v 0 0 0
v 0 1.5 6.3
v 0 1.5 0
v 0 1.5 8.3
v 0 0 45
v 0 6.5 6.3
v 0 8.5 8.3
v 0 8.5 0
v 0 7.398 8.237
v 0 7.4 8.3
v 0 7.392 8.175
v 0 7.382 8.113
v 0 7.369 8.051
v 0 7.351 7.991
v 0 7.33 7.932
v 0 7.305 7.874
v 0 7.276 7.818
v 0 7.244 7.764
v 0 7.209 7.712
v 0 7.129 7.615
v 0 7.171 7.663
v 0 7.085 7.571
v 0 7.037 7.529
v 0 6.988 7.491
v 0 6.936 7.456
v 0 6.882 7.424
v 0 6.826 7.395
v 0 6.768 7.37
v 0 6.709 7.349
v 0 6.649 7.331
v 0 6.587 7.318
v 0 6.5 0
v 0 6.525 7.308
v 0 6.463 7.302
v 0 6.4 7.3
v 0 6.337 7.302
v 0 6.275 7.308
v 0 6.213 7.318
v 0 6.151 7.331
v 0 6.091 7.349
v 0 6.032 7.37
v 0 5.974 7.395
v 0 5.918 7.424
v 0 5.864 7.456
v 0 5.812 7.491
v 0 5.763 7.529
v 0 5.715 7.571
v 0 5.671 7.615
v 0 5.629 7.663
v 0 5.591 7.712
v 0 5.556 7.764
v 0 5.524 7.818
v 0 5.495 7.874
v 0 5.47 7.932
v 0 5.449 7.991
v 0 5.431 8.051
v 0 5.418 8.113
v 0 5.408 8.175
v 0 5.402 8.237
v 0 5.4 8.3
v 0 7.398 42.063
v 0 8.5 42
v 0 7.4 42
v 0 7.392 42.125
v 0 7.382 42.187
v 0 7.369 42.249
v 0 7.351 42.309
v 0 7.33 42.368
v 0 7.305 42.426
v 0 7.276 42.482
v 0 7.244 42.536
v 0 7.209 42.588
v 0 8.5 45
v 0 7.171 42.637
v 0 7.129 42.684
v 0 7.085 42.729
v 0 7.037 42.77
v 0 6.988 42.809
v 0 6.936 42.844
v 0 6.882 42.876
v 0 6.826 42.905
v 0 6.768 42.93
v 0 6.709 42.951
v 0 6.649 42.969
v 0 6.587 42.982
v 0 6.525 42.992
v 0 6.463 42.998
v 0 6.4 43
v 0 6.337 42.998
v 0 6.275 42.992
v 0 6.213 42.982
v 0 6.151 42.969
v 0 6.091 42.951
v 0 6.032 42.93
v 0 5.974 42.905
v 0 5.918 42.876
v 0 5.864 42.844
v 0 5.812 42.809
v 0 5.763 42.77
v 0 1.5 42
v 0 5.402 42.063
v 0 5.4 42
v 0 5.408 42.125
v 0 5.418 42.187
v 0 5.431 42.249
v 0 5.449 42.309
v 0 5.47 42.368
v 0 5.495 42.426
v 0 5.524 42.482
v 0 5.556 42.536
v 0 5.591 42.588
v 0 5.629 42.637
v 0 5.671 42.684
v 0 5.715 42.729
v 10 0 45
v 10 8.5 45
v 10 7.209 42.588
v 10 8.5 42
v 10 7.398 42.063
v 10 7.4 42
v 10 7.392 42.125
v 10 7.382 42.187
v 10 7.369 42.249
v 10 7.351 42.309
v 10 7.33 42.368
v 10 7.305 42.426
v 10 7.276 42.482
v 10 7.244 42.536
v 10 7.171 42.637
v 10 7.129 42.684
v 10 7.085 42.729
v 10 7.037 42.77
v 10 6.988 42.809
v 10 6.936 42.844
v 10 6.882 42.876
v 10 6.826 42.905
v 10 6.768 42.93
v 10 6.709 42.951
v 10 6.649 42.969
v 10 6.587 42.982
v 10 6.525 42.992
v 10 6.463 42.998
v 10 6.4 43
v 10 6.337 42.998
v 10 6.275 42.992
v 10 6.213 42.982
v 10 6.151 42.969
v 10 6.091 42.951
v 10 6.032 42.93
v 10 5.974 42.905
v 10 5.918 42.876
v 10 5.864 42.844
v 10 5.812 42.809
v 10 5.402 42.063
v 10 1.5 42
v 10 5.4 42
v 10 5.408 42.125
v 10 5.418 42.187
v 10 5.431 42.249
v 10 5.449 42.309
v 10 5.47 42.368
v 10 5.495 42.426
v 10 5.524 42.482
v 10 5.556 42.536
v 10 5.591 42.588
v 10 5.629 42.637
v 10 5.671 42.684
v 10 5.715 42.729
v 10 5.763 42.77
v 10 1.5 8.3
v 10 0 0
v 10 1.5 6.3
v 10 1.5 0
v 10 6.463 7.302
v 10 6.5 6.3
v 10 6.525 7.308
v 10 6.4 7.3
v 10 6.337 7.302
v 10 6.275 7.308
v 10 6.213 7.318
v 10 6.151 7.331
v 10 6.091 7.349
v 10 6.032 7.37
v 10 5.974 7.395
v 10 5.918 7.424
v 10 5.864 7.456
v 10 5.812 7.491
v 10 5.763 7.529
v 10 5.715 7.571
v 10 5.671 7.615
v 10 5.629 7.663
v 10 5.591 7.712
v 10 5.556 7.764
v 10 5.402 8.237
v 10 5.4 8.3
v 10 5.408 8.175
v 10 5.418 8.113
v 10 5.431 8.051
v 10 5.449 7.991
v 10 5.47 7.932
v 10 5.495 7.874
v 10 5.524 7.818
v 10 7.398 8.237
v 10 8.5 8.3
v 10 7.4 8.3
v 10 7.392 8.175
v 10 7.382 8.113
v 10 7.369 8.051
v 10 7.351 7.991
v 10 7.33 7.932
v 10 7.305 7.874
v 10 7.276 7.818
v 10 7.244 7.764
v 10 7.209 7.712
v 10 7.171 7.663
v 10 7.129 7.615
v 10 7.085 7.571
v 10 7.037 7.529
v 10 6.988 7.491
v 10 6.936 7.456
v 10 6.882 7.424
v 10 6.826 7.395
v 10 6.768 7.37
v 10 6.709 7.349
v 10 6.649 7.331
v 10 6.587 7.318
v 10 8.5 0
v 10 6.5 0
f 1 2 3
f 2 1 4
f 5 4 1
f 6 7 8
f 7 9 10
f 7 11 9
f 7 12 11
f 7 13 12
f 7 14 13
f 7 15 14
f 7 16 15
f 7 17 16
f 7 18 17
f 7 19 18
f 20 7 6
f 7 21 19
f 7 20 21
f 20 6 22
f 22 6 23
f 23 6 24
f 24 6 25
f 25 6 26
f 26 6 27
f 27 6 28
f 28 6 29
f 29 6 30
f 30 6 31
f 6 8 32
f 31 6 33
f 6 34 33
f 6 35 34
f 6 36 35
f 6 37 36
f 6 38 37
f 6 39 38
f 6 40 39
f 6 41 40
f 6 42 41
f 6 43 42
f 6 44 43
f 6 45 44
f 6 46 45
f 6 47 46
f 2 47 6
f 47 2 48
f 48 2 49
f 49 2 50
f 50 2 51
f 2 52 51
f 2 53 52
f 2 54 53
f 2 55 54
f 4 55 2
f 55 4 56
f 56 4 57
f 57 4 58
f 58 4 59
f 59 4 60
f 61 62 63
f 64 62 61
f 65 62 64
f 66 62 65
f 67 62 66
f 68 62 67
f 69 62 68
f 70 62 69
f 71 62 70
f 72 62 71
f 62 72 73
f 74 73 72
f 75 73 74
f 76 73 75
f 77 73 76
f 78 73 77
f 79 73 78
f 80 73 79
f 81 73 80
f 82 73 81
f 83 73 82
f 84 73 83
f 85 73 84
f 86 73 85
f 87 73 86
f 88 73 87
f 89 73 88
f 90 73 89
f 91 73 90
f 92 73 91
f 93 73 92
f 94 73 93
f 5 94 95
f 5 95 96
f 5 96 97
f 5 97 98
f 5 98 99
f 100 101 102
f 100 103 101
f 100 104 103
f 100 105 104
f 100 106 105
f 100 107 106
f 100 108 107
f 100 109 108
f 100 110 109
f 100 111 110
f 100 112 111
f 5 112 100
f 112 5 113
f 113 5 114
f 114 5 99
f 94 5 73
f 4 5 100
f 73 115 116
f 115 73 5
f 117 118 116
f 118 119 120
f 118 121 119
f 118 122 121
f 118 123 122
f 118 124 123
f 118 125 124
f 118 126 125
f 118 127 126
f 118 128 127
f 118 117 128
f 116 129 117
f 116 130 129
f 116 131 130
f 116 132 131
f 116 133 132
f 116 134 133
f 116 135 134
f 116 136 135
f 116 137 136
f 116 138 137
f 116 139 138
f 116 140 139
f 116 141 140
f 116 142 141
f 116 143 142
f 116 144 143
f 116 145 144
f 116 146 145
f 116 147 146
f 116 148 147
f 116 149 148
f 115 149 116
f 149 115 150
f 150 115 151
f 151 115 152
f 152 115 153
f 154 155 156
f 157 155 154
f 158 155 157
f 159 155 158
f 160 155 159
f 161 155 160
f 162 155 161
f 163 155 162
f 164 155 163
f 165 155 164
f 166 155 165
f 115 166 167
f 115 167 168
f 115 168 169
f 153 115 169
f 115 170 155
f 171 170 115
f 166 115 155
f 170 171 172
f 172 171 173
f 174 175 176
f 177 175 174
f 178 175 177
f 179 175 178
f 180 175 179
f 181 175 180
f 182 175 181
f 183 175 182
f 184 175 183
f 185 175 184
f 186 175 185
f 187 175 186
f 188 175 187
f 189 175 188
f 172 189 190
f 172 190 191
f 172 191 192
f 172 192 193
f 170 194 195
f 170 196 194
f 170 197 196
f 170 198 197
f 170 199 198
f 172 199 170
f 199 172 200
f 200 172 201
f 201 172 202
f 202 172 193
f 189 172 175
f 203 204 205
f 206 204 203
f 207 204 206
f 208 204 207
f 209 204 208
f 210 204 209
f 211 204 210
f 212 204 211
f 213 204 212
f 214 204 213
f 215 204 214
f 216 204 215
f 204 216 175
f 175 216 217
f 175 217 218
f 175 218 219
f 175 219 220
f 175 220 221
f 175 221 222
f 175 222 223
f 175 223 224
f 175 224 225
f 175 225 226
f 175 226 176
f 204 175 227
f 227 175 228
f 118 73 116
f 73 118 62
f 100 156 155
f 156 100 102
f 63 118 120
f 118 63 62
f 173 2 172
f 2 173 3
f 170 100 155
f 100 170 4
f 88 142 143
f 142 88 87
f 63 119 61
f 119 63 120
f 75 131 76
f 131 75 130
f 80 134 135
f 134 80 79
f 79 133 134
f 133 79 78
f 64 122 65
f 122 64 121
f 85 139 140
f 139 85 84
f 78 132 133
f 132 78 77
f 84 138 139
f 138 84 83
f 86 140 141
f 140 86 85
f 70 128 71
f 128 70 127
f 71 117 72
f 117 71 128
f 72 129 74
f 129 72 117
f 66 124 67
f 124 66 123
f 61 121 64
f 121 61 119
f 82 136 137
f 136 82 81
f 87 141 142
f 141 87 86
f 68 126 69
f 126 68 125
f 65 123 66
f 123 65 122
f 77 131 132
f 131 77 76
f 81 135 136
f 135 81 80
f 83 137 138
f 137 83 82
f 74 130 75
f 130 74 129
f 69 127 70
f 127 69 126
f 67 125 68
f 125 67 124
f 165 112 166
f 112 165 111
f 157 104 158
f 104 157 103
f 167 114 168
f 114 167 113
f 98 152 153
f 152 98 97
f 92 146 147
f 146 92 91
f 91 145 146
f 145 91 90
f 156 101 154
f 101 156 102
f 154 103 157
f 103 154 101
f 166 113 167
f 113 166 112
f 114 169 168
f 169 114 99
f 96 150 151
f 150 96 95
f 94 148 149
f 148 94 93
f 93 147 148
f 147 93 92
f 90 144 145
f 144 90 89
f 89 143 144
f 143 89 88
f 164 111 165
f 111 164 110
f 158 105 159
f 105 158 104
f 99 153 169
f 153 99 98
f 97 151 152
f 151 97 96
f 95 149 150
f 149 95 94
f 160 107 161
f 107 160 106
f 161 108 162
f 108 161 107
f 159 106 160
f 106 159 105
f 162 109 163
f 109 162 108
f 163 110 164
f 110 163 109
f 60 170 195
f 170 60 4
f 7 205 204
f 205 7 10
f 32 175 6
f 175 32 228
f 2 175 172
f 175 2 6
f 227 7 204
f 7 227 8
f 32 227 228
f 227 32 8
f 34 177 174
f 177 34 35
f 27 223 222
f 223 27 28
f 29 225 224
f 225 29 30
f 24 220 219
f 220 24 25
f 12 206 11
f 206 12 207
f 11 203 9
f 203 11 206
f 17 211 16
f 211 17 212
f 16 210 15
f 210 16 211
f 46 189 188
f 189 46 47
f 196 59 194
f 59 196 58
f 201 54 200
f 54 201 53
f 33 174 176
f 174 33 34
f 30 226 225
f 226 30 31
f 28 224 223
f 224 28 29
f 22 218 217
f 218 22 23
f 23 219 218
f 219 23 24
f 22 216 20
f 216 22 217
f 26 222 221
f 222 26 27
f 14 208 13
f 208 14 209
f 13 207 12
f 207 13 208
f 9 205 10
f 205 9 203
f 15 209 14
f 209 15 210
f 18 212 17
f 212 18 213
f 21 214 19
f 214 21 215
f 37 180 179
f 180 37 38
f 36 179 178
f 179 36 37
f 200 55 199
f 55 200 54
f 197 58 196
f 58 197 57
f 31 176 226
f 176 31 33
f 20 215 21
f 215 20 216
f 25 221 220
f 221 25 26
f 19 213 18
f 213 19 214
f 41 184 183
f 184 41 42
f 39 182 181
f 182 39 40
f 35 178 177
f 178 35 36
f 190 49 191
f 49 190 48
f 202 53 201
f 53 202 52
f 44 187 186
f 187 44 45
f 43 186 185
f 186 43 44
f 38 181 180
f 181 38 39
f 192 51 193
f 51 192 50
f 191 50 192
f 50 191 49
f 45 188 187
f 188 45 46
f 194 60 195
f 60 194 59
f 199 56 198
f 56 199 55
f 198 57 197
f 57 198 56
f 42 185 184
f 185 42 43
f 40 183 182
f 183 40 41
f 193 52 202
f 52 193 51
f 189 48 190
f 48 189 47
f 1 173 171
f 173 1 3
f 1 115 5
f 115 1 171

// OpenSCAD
$fn=100;
module rail_clip(wall_thickness, width) {

    cube([width, wall_thickness, 45]);

    difference() {
        color("green")
        translate([0,wall_thickness,42])
        cube([width,7,3]);

        color("red")
        translate([-1, 6.4, 42])
        rotate([0,90,0])
        cylinder(h=width + 2, r=1);
    }

    difference() {
        union() {
            color("green")
            translate([0,wall_thickness,6.3])
            cube([width,5,2]);

            translate([0, wall_thickness + 5, 0])
            cube([10, 2, 8.3]);
        }

        color("red")
        translate([-1, 6.4, 8.3])
        rotate([0,90,0])
        cylinder(h=width + 2, r=1);
    }
}


rail_clip(1.5, 10);
